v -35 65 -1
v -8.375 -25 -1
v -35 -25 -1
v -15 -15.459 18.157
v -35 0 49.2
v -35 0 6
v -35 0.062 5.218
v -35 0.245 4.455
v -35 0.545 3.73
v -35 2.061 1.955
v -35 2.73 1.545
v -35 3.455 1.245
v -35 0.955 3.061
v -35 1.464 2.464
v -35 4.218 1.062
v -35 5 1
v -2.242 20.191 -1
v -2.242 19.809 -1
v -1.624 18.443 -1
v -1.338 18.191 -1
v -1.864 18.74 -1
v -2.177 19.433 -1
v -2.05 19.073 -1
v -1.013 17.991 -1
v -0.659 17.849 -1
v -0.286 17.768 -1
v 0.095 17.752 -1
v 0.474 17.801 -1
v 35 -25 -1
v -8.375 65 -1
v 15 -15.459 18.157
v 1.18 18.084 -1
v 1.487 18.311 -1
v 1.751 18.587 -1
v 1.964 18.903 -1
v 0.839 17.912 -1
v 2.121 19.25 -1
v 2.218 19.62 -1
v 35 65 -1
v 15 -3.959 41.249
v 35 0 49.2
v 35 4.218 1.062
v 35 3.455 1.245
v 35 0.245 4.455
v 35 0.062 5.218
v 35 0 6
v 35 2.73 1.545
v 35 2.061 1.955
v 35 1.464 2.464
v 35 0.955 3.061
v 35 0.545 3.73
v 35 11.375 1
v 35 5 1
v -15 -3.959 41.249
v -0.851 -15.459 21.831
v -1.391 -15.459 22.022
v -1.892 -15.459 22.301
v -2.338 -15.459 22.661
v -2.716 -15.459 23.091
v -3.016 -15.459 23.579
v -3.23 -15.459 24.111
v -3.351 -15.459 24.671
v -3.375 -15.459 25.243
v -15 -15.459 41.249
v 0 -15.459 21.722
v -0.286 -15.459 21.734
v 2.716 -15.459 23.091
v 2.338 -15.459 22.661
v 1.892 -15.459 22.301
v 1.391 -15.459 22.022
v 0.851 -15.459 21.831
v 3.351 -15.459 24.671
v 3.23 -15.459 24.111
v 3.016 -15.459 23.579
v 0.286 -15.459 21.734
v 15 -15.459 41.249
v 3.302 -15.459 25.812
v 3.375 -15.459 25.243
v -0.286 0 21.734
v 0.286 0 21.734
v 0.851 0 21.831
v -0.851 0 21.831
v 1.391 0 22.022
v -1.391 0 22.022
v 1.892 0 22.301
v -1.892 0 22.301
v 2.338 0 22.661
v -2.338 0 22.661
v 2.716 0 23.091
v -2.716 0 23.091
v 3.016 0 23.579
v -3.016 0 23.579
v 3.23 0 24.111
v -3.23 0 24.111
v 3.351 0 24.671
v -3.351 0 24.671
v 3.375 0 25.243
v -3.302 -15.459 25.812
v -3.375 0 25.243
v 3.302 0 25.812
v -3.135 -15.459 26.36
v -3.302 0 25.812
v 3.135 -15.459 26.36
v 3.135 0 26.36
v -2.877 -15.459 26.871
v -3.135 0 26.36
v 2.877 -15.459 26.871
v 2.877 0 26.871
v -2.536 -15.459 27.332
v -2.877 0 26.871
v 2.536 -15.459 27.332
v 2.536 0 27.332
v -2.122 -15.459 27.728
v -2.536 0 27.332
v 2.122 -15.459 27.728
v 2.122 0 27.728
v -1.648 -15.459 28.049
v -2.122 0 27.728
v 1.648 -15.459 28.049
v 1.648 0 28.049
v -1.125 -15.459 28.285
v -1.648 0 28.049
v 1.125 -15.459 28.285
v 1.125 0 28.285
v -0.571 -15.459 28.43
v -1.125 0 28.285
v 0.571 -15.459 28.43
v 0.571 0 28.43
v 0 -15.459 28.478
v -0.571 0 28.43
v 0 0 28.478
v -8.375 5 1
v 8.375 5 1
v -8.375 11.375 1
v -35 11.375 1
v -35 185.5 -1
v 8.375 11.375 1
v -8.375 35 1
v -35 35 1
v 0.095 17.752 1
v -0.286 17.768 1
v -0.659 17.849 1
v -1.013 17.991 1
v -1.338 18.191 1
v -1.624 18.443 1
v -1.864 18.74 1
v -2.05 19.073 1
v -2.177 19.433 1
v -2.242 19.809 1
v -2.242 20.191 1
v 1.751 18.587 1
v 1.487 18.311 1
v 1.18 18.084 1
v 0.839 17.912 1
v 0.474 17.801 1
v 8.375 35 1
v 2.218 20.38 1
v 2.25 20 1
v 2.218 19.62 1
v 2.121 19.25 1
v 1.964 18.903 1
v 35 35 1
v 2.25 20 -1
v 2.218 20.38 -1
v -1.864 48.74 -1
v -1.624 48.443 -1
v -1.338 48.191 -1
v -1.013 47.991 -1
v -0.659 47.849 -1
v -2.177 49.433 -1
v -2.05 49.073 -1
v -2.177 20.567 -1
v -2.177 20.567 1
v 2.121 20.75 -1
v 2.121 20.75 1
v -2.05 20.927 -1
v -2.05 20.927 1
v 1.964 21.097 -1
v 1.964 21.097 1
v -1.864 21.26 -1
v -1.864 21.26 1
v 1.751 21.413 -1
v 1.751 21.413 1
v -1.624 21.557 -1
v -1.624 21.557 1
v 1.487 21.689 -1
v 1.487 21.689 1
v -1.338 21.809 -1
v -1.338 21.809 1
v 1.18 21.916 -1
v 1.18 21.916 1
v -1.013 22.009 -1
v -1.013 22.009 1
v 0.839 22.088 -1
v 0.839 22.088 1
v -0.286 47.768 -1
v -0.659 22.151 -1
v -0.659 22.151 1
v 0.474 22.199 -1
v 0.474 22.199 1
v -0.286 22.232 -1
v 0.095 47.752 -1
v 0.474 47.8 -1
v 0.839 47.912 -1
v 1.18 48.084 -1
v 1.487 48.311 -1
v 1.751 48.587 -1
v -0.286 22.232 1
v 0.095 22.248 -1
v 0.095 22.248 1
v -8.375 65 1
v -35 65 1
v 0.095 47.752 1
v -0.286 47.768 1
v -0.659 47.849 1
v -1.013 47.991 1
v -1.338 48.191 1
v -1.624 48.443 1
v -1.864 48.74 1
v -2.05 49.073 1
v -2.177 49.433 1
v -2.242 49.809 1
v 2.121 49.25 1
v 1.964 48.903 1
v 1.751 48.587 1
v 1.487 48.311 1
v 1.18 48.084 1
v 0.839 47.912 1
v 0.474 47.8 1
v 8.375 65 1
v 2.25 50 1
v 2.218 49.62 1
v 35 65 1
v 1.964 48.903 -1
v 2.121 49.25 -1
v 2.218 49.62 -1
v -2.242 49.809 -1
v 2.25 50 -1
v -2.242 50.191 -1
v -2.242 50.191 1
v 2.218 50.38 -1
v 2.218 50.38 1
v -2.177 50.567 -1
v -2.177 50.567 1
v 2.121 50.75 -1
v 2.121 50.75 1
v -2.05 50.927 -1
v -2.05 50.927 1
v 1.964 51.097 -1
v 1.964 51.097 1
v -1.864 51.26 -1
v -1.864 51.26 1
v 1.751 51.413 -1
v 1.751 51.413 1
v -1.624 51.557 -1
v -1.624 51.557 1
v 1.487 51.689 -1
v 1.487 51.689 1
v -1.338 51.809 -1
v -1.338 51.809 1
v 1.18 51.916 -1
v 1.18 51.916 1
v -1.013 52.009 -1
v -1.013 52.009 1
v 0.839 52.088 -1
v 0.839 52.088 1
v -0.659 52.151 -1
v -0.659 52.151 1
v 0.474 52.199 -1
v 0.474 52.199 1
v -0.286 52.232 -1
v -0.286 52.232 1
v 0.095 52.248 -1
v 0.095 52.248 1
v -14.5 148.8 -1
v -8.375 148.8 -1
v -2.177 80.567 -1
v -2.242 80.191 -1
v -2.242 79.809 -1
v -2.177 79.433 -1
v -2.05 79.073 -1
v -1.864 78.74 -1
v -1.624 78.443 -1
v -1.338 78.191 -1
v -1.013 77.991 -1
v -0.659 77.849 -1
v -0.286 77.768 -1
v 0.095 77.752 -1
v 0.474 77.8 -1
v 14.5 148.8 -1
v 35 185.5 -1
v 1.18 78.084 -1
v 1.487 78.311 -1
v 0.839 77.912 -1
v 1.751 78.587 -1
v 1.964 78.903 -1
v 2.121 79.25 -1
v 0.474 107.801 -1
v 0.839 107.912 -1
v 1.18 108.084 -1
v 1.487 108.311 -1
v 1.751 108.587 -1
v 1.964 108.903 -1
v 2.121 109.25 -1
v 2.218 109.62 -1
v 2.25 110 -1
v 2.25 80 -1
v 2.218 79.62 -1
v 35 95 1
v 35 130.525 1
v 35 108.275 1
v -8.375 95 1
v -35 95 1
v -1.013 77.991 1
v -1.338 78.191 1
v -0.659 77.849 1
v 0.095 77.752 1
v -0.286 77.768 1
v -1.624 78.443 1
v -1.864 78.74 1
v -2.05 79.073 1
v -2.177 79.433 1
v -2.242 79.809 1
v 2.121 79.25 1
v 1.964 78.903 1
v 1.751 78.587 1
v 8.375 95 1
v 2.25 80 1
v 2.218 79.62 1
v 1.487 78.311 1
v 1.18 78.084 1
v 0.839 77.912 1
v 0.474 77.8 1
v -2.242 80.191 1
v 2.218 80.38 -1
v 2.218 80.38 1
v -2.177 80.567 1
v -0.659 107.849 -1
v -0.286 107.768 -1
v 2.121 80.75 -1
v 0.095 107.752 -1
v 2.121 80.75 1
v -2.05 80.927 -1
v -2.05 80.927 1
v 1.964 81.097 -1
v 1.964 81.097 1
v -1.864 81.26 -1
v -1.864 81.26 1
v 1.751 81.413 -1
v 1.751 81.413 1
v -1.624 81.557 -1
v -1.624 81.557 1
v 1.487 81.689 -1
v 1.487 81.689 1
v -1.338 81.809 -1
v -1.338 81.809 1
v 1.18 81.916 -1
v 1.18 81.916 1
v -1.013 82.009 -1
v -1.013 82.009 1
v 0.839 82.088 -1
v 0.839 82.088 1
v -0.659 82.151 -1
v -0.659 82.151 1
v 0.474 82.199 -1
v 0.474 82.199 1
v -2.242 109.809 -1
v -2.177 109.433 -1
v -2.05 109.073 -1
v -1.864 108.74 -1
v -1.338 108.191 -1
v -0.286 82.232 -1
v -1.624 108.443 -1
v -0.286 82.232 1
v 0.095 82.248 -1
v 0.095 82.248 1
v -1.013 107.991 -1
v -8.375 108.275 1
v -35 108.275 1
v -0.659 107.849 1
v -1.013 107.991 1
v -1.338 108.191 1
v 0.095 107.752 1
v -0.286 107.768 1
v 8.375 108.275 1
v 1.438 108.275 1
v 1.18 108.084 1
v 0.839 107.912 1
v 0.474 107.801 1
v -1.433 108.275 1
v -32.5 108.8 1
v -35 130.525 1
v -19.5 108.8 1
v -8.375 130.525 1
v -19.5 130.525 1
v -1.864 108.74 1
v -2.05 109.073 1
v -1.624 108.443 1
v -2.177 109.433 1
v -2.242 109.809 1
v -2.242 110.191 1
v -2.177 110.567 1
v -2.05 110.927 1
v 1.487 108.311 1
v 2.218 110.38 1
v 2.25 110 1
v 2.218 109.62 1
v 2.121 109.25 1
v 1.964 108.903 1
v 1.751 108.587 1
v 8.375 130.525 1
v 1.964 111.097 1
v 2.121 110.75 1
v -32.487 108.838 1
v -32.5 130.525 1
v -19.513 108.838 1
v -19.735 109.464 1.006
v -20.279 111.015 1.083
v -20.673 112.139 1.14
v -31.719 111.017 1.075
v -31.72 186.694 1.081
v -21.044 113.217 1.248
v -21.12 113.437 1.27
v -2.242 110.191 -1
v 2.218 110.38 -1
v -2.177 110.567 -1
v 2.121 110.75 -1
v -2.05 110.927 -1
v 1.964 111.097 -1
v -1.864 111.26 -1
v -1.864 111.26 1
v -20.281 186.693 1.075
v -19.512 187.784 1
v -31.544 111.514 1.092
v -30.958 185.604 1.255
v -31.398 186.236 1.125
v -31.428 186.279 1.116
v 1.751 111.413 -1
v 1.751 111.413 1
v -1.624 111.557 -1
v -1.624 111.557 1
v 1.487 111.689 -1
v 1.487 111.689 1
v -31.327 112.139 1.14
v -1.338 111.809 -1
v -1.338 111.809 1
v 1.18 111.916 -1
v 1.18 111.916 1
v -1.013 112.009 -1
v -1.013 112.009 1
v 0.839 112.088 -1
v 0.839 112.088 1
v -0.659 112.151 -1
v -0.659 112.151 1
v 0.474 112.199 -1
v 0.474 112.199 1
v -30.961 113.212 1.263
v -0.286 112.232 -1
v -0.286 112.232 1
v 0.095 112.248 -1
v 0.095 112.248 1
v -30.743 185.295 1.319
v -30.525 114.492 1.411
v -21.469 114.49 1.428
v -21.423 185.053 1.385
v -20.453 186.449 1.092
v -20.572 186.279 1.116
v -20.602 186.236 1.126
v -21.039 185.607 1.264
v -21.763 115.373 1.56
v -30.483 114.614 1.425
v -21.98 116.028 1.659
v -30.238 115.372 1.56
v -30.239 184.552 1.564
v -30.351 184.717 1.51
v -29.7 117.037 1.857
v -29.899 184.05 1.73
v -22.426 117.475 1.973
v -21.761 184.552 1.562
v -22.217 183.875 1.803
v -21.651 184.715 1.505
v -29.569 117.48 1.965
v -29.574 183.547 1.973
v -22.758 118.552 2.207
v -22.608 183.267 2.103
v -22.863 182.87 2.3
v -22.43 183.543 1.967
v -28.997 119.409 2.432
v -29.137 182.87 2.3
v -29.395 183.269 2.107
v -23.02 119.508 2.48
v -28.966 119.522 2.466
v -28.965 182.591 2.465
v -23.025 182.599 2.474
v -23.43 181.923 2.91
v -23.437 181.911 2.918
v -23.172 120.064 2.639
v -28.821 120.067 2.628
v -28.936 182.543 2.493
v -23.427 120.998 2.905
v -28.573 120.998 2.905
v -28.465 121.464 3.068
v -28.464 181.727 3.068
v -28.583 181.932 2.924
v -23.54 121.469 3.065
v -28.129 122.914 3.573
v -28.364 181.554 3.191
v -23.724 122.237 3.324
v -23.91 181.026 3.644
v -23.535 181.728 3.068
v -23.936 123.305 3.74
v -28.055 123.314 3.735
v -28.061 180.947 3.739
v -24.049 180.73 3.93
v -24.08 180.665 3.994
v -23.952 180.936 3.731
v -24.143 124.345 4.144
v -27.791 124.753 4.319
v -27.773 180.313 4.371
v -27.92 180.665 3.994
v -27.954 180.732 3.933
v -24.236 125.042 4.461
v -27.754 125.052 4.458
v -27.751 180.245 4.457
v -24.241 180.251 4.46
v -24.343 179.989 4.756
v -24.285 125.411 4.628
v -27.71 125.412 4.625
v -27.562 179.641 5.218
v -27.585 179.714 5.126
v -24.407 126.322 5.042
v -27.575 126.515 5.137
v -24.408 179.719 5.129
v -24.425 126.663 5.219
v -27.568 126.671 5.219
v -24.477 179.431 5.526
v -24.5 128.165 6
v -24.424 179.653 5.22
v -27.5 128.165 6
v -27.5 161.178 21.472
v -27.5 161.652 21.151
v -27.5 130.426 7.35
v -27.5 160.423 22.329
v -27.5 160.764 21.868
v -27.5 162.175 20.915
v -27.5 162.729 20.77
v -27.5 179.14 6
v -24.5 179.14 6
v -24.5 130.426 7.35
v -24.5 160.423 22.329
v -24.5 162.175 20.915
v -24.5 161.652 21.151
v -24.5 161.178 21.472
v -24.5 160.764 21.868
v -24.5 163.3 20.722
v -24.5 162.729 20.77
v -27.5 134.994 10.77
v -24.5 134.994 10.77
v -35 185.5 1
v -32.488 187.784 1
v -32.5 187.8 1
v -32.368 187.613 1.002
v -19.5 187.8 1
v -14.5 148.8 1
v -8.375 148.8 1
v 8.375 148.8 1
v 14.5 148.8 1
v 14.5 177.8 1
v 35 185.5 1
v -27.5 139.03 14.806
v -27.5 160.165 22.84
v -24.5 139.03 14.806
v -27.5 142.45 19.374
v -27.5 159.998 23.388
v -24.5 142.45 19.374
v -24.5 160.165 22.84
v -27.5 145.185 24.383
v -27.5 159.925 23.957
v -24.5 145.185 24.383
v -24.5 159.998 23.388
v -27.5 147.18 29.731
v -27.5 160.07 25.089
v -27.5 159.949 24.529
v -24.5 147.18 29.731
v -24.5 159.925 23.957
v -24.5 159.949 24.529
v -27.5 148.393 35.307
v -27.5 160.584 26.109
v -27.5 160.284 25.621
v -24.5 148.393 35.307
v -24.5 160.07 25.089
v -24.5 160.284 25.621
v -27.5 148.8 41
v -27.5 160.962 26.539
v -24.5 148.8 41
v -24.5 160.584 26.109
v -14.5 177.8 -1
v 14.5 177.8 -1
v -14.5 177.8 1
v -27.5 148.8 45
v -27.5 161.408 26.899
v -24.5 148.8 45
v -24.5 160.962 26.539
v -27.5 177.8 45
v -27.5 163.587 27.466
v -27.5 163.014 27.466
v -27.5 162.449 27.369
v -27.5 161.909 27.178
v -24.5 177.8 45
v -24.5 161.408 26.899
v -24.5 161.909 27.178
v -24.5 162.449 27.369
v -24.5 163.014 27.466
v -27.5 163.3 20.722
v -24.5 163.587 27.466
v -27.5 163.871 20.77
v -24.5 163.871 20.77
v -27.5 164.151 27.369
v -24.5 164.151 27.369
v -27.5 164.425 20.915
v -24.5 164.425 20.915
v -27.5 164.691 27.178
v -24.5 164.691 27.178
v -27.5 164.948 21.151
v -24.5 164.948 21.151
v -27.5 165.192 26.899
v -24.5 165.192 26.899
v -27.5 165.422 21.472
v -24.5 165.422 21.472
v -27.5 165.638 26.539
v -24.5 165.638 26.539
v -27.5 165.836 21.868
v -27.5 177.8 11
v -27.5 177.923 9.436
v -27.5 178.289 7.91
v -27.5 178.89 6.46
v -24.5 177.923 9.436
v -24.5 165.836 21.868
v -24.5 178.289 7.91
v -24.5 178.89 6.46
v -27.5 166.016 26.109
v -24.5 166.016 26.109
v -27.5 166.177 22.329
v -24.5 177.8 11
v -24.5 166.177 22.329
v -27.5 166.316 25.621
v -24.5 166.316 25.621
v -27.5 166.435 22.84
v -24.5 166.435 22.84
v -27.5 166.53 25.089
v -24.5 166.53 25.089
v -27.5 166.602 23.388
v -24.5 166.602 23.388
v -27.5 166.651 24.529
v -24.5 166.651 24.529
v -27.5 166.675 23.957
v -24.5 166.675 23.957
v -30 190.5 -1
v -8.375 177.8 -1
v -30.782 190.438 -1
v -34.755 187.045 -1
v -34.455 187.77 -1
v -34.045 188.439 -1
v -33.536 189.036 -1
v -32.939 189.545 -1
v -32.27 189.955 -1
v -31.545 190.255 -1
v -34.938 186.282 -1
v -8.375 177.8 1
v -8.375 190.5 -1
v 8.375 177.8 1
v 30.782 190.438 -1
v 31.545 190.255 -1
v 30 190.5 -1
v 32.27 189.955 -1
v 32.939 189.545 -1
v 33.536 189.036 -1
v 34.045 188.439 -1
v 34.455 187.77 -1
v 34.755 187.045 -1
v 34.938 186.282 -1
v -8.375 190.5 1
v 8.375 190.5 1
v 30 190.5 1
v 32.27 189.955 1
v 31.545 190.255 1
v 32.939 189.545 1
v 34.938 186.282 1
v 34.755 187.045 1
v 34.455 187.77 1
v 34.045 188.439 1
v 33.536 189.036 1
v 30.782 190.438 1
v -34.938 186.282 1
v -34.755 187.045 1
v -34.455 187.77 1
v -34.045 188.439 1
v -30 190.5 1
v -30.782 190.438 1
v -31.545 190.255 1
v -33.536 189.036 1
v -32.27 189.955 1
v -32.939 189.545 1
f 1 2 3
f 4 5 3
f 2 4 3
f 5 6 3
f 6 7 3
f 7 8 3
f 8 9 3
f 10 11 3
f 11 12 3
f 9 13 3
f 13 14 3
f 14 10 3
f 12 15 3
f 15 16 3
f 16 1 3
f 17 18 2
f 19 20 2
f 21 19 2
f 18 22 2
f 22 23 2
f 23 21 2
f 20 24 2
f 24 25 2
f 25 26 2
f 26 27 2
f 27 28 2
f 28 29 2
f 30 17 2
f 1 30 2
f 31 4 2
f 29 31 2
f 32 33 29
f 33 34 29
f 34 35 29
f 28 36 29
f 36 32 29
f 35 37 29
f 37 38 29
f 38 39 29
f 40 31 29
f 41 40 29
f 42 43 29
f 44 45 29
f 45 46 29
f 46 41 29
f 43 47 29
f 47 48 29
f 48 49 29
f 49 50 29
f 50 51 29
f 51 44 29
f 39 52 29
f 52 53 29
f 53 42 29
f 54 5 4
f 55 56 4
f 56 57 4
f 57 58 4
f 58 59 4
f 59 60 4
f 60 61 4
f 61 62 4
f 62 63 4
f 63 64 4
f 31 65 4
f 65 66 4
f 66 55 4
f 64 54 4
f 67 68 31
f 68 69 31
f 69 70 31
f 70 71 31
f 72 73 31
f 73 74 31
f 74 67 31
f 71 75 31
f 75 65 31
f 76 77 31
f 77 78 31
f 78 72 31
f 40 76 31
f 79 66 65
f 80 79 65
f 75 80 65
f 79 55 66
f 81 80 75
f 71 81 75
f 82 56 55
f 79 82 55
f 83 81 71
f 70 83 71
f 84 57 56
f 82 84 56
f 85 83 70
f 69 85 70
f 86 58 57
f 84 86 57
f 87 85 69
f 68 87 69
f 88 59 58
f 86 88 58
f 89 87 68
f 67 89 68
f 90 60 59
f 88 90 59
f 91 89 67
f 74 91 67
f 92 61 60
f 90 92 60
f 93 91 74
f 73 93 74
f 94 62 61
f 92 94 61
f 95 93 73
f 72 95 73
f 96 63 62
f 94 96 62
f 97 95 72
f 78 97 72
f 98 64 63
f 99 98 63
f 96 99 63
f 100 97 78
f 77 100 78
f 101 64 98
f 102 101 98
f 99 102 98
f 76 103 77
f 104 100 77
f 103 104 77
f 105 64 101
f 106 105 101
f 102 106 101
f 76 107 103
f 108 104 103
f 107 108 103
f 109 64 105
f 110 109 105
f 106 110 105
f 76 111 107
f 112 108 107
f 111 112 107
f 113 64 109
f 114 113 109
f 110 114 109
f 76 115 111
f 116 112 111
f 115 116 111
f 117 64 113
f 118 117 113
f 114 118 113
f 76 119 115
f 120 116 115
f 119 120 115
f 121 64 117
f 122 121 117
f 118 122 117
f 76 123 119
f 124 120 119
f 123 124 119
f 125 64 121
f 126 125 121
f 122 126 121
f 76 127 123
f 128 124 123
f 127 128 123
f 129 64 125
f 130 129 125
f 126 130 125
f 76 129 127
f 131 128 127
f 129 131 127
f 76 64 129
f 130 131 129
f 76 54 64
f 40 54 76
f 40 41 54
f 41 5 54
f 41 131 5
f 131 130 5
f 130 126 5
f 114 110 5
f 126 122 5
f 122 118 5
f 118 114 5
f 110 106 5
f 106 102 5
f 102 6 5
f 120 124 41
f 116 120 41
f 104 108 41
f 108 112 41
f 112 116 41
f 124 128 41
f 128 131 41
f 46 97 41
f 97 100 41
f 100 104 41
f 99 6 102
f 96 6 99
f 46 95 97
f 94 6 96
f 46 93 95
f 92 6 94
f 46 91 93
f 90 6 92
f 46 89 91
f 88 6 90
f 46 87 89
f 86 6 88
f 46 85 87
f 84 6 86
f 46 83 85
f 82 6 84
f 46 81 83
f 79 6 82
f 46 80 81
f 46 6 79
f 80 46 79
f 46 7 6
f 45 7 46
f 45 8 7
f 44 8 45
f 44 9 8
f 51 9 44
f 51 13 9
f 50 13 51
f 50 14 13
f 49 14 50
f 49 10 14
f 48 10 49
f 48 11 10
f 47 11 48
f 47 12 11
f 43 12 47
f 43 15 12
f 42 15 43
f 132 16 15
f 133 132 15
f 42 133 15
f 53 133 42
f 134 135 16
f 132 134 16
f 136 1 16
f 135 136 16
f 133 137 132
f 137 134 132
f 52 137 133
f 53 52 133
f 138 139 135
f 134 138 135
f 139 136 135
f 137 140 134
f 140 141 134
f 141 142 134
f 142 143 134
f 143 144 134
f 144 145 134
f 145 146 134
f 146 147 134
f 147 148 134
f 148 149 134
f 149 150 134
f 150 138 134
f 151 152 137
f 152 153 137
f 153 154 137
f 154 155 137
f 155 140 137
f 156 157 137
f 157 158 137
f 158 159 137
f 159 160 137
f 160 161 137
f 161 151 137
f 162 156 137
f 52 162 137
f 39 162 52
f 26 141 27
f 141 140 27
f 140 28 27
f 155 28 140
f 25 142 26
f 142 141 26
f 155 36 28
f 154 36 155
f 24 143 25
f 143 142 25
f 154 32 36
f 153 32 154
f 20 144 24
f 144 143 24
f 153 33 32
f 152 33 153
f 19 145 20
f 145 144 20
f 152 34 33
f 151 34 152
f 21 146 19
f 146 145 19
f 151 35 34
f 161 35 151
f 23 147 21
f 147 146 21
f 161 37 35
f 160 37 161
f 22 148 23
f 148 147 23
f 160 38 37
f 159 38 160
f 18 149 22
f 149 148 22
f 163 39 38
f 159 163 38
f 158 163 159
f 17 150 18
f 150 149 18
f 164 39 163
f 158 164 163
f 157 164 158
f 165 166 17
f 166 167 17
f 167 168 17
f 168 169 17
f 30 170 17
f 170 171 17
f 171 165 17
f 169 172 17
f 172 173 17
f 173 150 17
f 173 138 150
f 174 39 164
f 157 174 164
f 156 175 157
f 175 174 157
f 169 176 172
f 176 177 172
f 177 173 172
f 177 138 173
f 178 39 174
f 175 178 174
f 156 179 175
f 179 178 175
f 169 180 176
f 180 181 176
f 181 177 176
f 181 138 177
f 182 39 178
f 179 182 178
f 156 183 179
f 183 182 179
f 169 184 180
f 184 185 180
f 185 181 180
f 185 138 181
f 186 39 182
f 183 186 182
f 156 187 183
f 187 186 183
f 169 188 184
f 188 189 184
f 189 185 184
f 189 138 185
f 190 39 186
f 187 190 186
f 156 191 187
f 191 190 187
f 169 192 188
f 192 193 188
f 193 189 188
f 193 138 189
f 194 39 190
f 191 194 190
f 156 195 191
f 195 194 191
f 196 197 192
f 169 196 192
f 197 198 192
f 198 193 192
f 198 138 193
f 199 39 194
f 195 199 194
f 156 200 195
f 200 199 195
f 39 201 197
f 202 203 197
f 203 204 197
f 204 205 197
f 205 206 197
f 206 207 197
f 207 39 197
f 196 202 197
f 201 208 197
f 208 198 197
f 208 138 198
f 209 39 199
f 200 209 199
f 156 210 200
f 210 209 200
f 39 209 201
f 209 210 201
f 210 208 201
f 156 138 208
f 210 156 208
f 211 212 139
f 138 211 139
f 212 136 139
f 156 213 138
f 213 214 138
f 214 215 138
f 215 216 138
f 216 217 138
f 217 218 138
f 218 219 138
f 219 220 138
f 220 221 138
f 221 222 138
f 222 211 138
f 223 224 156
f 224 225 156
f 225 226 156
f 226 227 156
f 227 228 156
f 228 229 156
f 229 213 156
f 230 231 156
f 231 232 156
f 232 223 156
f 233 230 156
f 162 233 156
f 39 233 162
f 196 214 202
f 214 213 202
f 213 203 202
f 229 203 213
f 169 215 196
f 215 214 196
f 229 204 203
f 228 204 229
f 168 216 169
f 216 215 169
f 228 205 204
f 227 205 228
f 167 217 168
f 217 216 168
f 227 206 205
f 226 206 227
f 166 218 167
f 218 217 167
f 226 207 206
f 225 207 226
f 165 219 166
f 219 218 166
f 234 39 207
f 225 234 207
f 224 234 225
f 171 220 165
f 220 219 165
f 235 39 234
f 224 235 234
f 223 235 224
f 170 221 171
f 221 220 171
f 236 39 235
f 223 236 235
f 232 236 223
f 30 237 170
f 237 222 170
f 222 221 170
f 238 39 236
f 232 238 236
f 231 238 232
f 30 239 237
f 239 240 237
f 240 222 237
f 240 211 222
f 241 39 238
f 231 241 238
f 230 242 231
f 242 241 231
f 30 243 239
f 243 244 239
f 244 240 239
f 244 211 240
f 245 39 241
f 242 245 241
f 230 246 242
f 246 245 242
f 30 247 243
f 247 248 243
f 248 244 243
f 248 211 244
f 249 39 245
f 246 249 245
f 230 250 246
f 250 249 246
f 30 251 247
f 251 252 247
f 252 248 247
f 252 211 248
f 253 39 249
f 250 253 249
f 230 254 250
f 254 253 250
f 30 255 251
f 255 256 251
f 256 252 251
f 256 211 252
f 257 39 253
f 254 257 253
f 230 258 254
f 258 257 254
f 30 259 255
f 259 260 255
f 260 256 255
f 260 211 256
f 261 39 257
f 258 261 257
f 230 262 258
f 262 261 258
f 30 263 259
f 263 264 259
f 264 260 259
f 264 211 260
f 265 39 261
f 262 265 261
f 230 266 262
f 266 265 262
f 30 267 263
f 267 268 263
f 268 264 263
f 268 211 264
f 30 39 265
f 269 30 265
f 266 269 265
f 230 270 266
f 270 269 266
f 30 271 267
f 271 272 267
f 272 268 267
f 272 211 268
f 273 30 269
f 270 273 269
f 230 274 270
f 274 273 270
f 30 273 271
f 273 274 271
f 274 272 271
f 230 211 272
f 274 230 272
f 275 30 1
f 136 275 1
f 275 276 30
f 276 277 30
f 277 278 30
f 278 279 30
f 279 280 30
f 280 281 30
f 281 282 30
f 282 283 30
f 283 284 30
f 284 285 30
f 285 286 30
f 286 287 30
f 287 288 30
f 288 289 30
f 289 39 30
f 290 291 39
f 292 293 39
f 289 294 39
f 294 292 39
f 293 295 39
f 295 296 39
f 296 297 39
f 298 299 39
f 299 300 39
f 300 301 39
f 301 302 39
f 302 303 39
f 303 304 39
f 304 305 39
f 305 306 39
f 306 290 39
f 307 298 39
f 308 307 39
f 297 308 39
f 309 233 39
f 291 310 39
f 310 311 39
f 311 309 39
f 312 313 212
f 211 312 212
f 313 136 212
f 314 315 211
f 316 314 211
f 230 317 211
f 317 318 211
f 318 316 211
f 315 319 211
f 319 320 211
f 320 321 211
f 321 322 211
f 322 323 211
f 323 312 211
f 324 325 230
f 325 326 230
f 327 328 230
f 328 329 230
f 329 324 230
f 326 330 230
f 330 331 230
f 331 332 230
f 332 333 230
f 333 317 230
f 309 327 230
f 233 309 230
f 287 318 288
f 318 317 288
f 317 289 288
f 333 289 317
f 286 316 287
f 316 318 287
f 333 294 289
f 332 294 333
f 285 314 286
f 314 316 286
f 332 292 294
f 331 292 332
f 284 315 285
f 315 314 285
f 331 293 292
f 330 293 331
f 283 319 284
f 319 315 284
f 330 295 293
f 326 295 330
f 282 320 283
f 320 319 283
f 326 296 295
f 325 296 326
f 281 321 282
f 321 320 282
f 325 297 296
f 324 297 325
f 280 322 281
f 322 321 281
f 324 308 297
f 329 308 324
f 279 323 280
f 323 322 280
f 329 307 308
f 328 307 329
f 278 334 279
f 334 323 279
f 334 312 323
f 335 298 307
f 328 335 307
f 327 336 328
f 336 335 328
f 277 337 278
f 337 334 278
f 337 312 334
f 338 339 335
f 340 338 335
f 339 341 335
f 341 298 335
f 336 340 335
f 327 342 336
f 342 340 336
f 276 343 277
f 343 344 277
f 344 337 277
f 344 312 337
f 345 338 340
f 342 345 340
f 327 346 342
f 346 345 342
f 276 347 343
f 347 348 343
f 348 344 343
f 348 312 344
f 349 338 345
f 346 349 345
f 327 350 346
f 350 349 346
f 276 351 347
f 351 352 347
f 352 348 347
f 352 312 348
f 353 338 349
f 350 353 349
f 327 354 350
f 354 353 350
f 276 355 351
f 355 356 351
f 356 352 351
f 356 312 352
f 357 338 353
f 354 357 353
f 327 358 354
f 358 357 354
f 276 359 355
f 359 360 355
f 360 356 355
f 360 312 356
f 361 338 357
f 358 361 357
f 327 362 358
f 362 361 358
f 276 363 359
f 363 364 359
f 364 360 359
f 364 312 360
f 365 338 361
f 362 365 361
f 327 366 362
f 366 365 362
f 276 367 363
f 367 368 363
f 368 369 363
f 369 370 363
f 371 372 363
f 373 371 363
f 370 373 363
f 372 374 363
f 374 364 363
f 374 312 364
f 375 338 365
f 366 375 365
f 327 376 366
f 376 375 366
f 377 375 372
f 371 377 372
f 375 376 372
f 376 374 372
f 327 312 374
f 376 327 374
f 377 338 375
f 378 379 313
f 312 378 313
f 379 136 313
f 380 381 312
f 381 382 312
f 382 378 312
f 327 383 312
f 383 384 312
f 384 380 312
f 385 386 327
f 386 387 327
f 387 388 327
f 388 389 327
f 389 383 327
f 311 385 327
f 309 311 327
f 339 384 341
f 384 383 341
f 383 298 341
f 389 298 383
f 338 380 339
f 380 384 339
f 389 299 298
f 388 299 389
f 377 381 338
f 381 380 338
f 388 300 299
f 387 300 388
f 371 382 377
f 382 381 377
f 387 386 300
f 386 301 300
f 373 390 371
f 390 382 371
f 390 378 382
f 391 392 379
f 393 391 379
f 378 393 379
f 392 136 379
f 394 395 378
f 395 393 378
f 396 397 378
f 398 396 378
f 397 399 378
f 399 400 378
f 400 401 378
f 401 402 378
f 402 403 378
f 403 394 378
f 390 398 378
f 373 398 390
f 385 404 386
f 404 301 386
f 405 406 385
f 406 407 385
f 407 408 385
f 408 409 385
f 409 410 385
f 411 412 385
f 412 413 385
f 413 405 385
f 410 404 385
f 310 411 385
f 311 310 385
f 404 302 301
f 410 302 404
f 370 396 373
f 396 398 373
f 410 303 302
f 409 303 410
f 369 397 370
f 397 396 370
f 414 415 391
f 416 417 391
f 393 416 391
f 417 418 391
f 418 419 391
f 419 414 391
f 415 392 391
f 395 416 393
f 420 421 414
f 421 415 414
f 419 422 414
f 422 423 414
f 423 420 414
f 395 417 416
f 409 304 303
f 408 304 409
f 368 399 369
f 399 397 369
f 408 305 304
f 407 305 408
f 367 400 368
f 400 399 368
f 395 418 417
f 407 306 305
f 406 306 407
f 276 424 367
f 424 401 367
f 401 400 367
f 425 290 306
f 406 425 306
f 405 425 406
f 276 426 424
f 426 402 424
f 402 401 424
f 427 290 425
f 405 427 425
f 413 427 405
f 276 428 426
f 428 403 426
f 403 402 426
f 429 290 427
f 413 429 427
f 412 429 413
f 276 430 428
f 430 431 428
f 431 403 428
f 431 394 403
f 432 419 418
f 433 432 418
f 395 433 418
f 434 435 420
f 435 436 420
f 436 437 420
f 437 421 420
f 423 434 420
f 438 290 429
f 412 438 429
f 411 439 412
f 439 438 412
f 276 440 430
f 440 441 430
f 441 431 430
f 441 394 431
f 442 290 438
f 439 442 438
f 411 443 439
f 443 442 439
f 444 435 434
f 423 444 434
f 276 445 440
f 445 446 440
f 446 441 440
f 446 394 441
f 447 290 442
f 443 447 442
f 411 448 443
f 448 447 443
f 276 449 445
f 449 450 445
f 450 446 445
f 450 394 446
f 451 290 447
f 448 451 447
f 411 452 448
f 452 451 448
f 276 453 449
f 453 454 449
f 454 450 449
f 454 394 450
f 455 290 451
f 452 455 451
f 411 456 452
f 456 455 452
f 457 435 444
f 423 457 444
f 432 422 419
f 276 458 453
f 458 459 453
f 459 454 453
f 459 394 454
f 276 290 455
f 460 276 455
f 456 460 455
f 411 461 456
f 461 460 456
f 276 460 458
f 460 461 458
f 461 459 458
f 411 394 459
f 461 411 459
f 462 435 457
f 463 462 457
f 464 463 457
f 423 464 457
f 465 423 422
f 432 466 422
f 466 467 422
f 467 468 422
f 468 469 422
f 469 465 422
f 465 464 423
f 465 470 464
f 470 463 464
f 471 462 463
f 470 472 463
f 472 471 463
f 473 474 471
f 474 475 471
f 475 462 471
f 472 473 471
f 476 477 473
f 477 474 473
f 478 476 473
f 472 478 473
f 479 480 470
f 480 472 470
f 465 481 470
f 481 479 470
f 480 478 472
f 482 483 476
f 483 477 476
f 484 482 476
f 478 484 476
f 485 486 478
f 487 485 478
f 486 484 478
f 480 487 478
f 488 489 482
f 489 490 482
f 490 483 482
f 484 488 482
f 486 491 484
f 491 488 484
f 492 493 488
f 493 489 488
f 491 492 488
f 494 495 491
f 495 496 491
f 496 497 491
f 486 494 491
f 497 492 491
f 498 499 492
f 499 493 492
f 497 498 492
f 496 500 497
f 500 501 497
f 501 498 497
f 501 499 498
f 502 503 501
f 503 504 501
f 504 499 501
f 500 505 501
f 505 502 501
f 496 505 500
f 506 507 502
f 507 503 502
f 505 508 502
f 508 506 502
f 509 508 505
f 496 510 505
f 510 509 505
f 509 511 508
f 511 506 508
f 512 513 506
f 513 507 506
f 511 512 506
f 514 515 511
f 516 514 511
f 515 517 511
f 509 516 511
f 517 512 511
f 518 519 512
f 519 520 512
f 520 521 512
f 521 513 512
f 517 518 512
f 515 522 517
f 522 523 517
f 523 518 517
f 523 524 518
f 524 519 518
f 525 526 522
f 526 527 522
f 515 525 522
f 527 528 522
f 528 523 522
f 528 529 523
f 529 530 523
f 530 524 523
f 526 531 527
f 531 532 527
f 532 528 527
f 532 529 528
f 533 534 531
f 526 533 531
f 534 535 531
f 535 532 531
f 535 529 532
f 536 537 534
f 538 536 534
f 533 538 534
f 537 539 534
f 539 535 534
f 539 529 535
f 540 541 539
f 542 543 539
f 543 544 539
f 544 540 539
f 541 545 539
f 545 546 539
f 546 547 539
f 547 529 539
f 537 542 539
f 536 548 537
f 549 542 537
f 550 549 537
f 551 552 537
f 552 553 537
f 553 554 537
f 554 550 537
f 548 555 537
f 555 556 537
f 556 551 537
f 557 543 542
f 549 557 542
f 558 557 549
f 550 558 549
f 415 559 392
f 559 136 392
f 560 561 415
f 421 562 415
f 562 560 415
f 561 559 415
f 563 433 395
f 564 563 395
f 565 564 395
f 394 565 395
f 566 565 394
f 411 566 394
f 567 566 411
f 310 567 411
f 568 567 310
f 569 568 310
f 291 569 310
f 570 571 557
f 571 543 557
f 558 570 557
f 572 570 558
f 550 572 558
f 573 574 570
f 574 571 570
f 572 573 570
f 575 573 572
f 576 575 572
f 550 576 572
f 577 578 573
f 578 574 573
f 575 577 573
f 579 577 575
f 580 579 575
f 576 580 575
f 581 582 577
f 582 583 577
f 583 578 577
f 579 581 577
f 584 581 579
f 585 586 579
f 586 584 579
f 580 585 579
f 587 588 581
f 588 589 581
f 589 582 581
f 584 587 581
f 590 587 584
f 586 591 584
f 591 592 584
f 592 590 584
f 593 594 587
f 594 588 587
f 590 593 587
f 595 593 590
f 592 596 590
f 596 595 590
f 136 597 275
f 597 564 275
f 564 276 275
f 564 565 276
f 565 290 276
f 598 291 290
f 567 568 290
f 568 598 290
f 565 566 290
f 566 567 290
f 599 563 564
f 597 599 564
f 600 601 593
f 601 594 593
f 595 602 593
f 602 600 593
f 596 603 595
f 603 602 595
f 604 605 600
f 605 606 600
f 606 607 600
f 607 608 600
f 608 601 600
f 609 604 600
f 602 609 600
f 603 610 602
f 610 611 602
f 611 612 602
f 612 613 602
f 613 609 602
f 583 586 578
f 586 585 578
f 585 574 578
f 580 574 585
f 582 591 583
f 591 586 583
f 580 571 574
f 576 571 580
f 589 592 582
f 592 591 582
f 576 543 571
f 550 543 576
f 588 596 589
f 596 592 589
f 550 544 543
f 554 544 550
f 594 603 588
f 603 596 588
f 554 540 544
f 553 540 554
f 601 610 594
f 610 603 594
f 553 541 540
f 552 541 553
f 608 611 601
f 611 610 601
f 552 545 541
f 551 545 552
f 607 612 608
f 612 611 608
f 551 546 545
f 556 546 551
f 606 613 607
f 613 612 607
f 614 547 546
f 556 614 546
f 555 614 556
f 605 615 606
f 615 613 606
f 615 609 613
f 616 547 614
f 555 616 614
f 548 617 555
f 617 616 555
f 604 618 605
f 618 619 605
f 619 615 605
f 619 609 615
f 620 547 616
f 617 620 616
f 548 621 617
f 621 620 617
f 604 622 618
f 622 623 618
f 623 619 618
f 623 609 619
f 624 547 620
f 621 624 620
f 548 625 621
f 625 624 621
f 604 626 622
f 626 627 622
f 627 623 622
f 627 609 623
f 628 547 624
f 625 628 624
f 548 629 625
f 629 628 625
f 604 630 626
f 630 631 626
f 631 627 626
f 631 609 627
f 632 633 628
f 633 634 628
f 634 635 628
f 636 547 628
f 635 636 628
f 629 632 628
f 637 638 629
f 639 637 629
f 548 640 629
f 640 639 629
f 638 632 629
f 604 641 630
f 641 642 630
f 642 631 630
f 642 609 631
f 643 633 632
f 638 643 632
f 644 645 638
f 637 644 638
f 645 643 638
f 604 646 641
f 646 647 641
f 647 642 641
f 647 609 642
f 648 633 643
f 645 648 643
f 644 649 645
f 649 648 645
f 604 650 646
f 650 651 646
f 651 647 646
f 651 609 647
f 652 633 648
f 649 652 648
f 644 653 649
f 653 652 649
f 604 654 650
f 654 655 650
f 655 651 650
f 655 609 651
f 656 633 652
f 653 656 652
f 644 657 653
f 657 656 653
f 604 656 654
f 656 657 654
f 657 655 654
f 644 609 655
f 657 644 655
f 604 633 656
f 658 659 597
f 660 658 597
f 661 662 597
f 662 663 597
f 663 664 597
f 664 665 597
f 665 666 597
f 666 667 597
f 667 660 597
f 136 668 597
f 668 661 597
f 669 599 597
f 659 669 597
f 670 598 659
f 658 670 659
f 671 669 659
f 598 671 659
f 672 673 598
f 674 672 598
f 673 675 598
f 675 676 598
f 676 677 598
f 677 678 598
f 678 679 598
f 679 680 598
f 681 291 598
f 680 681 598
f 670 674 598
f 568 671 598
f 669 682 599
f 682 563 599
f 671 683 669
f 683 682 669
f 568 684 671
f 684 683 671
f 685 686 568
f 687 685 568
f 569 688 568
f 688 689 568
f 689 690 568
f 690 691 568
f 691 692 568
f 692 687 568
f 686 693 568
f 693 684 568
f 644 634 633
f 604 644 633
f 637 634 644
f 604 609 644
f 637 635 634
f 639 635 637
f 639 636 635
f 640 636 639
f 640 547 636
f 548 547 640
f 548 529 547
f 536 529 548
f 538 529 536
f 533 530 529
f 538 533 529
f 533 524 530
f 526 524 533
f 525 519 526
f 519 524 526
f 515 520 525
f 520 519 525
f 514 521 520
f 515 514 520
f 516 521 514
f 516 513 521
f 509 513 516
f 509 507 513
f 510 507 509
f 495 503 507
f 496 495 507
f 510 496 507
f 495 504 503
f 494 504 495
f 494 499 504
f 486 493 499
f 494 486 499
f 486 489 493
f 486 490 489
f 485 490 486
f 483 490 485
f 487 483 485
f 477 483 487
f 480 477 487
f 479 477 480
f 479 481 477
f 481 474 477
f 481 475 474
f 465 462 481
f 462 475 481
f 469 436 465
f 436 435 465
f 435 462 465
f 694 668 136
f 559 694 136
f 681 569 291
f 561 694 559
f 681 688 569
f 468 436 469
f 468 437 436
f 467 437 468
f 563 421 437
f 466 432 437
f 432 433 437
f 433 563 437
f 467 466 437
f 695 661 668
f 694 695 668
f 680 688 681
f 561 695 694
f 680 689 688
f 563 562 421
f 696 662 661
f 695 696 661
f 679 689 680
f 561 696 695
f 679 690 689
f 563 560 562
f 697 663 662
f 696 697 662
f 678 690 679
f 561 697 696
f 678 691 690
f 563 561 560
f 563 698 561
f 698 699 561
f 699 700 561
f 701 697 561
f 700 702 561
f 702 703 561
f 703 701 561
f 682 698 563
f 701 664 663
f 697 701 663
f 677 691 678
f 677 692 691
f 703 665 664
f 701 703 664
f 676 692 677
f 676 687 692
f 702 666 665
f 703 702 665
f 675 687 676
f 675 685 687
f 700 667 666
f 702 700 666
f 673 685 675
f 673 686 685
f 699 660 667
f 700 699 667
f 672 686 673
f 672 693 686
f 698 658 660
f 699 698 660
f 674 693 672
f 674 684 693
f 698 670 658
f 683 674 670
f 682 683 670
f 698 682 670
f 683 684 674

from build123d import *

# Parameters (mm, degrees)
SKETCH1_W                = 70
SKETCH1_H                = 2
BOSS_EXTRUDE1_DEPTH      = 190.5
BOSS_EXTRUDE2_DEPTH      = 70
SKETCH4_W                = 3
SKETCH4_H                = 29
BOSS_EXTRUDE3_DEPTH      = 44
FILLET1_R                = 40
FILLET2_R                = 10
FILLET3_R                = 5
BOSS_EXTRUDE4_DEPTH      = 15
BOSS_EXTRUDE4_DEPTH_BACK = 15
F_1_4_CLEARANCE_HOLE2_D  = 6.7564
F_1_4_CLEARANCE_HOLE3_D  = 6.7564
M4_CLEARANCE_HOLE1_D     = 4.5
FILLET6_R                = 5
SKETCH23_W               = 29
SKETCH23_H               = 29
CUT_EXTRUDE1_DEPTH       = 2
FILLET7_R                = 5
FILLET8_R                = 5
FILLET9_R                = 5


with BuildPart() as part:
    # Sketch1 → Boss-Extrude1 (new body)
    with BuildSketch(Plane(origin=(0, 0, 0), x_dir=(1, 0, 0), z_dir=(0, 1, 0))):
        Rectangle(SKETCH1_W, SKETCH1_H)
    extrude(amount=BOSS_EXTRUDE1_DEPTH)

    # Sketch3 → Boss-Extrude2 (add)
    with BuildSketch(Plane(origin=(35, 0, 0), x_dir=(0, 0, -1), z_dir=(1, 0, 0))):
        Polygon((1, 0), (-49.2, 0), (1, -25), align=None)
    extrude(amount=-BOSS_EXTRUDE2_DEPTH)

    # Sketch4 → Boss-Extrude3 (add)
    with BuildSketch(Plane.XY.offset(1)):
        with Locations((-26, 163.3)):
            Rectangle(SKETCH4_W, SKETCH4_H)
    extrude(amount=BOSS_EXTRUDE3_DEPTH)

    # Fillet1
    fillet1_edges = [part.edges().sort_by_distance(p)[0] for p in [
        (-26, 148.8, 1),
    ]]
    fillet(fillet1_edges, radius=FILLET1_R)

    # Fillet2
    fillet2_edges = [part.edges().sort_by_distance(p)[0] for p in [
        (-26, 177.8, 1),
    ]]
    fillet(fillet2_edges, radius=FILLET2_R)

    # Fillet3
    fillet3_edges = [part.edges().sort_by_distance(p)[0] for p in [
        (-27.5, 148.3, 1),
    ]]
    fillet(fillet3_edges, radius=FILLET3_R)

    # Sketch9 → Boss-Extrude4 (add, two sides: drawn at the far end of the back side and taken through both)
    with BuildSketch(Plane.ZY.offset(-BOSS_EXTRUDE4_DEPTH_BACK)):
        Polygon((41.249412395, -3.959455979), (41.249412395, -15.459455979), (18.157412395, -15.459455979), align=None)
    extrude(amount=BOSS_EXTRUDE4_DEPTH + BOSS_EXTRUDE4_DEPTH_BACK)

    # 1/4 Clearance Hole2 (through all)
    with Locations(Plane(origin=(0, 0, 0), x_dir=(1, 0, 0), z_dir=(0, 1, 0))):
        with Locations((0, -25.1)):
            Hole(F_1_4_CLEARANCE_HOLE2_D / 2)

    # 1/4 Clearance Hole3 (through all)
    with Locations(Plane(origin=(-24.5, 0, 0), x_dir=(0, 0, -1), z_dir=(1, 0, 0))):
        with Locations((-24.1, 163.3)):
            Hole(F_1_4_CLEARANCE_HOLE3_D / 2)

    # M4 Clearance Hole1 (through all)
    with Locations(Plane.XY.offset(1)):
        with Locations((0, 20), (0, 50), (0, 80), (0, 110)):
            Hole(M4_CLEARANCE_HOLE1_D / 2)

    # Fillet6
    fillet6_edges = [part.edges().sort_by_distance(p)[0] for p in [
        (0, 0, 1),
    ]]
    fillet(fillet6_edges, radius=FILLET6_R)

    # Sketch23 → Cut-Extrude1 (cut)
    with BuildSketch(Plane.XY.offset(1)):
        with Locations((0, 163.3)):
            Rectangle(SKETCH23_W, SKETCH23_H)
    extrude(amount=-CUT_EXTRUDE1_DEPTH, mode=Mode.SUBTRACT)

    # Fillet7
    fillet7_edges = [part.edges().sort_by_distance(p)[0] for p in [
        (-24.5, 148.3, 1),
    ]]
    fillet(fillet7_edges, radius=FILLET7_R)

    # Fillet8
    fillet8_edges = [part.edges().sort_by_distance(p)[0] for p in [
        (35, 190.5, 0),
    ]]
    fillet(fillet8_edges, radius=FILLET8_R)

    # Fillet9
    fillet9_edges = [part.edges().sort_by_distance(p)[0] for p in [
        (-35, 190.5, 0),
    ]]
    fillet(fillet9_edges, radius=FILLET9_R)


solid = part.part
